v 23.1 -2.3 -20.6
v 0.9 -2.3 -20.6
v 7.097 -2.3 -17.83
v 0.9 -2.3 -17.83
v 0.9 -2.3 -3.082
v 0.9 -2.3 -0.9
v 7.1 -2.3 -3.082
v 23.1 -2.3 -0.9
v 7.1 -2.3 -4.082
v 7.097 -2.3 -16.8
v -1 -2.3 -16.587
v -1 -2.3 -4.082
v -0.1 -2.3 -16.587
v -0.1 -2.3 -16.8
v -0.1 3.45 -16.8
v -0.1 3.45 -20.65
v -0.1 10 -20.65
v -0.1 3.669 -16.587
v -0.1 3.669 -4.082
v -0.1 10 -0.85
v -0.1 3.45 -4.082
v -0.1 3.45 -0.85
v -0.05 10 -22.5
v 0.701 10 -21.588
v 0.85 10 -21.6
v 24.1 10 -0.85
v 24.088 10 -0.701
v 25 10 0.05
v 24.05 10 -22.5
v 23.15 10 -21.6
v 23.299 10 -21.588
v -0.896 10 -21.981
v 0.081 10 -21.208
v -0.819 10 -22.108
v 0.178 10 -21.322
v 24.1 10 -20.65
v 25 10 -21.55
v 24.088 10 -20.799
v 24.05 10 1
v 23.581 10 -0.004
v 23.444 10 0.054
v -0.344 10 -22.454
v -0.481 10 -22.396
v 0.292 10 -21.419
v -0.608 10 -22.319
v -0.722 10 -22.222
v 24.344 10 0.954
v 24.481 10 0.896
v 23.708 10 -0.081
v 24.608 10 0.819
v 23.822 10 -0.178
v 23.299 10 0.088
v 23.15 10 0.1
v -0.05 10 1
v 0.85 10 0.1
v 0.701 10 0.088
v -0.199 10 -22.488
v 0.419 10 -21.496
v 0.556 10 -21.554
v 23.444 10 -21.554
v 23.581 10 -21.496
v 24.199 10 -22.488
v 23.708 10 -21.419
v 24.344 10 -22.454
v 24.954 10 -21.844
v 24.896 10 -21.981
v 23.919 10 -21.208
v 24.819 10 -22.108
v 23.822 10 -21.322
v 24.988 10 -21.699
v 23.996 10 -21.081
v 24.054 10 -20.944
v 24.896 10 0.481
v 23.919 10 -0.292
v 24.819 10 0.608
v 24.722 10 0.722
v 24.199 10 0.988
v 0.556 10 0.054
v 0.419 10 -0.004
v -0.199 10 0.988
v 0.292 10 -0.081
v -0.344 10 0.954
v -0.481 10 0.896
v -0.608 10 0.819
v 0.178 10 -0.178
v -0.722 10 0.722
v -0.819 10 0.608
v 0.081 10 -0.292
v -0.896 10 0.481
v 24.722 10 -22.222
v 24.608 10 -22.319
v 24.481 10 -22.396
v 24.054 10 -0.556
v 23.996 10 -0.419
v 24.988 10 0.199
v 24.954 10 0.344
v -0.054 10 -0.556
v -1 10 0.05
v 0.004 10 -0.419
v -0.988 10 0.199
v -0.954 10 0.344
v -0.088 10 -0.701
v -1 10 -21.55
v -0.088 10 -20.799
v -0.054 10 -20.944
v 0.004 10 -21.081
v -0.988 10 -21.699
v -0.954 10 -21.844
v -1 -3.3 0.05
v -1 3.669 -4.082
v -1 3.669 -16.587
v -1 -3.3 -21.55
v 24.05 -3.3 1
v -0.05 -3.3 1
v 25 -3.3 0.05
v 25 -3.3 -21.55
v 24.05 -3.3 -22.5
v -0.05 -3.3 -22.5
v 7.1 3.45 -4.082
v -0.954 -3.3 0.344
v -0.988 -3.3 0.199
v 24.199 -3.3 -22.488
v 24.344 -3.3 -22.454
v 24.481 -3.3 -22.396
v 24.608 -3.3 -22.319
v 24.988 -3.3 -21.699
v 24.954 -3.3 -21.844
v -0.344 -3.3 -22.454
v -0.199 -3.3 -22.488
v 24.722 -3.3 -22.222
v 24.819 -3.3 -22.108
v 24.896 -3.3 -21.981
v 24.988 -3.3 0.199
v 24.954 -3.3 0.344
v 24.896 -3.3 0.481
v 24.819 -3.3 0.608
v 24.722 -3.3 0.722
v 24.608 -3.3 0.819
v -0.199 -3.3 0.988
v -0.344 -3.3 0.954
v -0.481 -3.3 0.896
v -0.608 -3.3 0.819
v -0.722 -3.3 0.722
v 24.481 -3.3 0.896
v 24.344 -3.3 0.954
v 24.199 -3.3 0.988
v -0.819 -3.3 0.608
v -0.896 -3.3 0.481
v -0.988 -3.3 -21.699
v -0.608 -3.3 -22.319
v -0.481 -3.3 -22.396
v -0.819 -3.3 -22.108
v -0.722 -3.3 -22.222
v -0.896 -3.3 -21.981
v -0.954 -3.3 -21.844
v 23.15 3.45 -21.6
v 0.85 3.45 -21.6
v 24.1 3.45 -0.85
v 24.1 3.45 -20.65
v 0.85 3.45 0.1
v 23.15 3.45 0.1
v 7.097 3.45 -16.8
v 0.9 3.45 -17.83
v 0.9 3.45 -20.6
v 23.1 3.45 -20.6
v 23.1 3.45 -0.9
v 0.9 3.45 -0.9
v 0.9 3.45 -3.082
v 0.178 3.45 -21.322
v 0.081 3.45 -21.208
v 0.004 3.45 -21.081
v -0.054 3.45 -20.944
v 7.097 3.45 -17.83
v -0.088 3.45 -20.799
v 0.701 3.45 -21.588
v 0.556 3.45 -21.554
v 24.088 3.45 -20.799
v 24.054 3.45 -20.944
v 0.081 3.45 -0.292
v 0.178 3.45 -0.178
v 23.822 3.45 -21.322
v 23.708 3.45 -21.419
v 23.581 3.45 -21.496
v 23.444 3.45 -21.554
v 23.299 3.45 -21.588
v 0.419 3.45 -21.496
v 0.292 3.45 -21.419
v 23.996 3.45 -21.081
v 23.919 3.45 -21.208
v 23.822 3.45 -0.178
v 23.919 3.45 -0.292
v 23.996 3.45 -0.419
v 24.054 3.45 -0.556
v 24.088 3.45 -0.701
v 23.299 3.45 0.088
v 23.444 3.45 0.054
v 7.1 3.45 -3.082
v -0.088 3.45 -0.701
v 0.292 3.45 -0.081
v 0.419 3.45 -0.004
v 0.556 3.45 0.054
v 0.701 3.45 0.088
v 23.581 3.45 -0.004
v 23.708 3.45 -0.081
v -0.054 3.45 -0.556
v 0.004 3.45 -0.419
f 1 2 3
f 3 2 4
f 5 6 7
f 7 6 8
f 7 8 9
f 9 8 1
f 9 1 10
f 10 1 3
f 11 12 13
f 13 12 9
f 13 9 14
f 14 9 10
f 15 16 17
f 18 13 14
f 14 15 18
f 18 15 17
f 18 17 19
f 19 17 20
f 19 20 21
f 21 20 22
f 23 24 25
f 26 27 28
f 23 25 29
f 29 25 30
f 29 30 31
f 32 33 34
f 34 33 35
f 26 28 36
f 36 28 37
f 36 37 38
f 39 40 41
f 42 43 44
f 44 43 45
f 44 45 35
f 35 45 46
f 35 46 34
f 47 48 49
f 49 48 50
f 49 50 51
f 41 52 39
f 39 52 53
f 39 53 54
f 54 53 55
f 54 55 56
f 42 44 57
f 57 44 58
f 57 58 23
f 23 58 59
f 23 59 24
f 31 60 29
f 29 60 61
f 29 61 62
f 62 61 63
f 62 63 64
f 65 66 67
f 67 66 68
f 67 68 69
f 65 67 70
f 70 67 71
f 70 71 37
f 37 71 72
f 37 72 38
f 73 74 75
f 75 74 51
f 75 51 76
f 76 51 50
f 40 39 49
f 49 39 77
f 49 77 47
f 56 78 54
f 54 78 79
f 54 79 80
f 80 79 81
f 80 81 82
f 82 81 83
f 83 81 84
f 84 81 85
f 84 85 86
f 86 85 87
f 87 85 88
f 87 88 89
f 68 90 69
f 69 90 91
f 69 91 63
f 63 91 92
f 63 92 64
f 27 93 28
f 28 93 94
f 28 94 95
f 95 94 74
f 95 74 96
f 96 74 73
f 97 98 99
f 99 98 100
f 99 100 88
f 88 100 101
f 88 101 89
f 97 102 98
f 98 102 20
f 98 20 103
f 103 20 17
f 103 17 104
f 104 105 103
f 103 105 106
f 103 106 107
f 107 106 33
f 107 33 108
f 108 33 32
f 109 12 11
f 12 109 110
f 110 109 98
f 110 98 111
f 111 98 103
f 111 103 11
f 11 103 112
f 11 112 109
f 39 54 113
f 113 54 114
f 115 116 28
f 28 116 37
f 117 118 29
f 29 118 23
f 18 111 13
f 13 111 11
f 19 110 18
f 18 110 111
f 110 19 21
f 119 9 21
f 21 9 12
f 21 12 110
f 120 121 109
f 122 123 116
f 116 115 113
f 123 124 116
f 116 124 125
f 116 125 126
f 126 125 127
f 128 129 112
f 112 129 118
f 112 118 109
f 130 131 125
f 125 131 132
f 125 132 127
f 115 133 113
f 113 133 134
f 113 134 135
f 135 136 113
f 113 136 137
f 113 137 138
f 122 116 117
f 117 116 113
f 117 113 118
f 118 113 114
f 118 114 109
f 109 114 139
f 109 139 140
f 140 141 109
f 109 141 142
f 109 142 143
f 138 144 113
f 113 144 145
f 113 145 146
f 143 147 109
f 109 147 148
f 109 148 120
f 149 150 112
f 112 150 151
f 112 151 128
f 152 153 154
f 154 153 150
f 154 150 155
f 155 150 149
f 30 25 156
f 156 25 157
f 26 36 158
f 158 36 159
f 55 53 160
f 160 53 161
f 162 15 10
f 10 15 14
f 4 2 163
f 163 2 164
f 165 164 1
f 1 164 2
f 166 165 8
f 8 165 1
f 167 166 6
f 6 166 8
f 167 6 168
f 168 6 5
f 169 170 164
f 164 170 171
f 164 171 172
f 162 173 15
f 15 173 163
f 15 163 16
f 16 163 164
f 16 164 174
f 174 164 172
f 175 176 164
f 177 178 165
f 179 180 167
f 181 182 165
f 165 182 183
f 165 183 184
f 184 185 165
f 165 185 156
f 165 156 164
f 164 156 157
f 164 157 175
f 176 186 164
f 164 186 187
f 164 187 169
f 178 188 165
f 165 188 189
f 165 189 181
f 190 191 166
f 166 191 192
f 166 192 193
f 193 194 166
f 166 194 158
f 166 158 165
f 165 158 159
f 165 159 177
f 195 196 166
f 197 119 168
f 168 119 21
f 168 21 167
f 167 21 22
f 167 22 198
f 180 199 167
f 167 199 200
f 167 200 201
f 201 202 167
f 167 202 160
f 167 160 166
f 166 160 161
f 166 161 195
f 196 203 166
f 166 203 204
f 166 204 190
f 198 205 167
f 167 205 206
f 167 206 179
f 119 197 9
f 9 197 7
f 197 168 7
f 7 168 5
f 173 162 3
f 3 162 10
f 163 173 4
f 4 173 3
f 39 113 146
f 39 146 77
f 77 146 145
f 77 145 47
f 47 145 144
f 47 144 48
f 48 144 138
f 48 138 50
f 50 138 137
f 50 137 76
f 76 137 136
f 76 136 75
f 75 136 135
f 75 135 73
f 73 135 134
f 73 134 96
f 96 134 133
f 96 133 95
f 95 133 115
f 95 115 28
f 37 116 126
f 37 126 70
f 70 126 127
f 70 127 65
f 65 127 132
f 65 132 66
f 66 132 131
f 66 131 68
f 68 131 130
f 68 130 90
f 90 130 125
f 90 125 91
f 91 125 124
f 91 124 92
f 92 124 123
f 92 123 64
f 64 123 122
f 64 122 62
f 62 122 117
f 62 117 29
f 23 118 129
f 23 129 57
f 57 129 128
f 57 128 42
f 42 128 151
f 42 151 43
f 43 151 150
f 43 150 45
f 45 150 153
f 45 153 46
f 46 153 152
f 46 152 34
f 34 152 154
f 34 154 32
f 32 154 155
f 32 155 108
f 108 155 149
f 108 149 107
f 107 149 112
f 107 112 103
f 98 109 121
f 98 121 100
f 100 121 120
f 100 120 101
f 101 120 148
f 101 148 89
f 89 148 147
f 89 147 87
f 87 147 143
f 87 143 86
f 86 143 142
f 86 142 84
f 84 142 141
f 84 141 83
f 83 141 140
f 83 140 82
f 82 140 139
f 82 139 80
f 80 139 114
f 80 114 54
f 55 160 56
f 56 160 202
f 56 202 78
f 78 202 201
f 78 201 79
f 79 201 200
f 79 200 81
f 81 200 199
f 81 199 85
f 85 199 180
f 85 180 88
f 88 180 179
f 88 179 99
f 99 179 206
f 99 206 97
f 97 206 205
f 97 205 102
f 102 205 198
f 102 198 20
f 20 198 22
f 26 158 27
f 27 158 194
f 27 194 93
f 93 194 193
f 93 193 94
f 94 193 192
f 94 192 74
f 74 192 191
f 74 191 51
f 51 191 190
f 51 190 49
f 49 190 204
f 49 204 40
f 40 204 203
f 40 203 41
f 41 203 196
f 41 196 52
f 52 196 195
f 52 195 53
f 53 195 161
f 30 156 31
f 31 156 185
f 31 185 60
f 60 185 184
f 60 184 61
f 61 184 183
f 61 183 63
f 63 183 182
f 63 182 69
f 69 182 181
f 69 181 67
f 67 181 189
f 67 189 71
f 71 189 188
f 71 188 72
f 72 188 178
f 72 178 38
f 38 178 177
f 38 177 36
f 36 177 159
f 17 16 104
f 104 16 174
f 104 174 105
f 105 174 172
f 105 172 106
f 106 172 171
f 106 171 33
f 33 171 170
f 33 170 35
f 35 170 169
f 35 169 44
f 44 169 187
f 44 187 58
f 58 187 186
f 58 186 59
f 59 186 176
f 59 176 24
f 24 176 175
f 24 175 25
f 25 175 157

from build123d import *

# Parameters (mm, degrees)
SKETCH_1_W          = 26
SKETCH_1_H          = 23.5
SKETCH_1_W_2        = 24
SKETCH_1_H_2        = 21.5
EXTRUDE_1_DEPTH     = 10
SKETCH_2_W          = 12.504676962
SKETCH_2_H          = 3.66933463
CUT_EXTRUDE_1_DEPTH = 1
EXTRUDE_2_DEPTH     = 2.3
SKETCH_5_W          = 26
SKETCH_5_H          = 23.5
EXTRUDE_3_DEPTH     = 1
CUT_EXTRUDE_2_REACH = 38.168
SKETCH_6_W          = 24.2
SKETCH_6_H          = 21.7
SKETCH_6_W_2        = 24
SKETCH_6_H_2        = 21.5
SKETCH_7_W          = 22.2
SKETCH_7_H          = 1
SKETCH_7_W_2        = 1
SKETCH_7_H_2        = 19.7
SKETCH_7_W_3        = 6.19724131
SKETCH_7_H_3        = 1.03
SKETCH_7_W_4        = 6.2
EXTRUDE_4_DEPTH     = 5.75
FILLET_1_R          = 0.95


with BuildPart() as part:
    # 草图1 → 凸台-拉伸1 (new body)
    with BuildSketch(Plane(origin=(0, 0, 0), x_dir=(1, 0, 0), z_dir=(0, 1, 0))):
        with Locations((12, 10.75)):
            Rectangle(SKETCH_1_W, SKETCH_1_H)
        with Locations((12, 10.75)):
            Rectangle(SKETCH_1_W_2, SKETCH_1_H_2, mode=Mode.SUBTRACT)
    extrude(amount=EXTRUDE_1_DEPTH)

    # 草图2 → 切除-拉伸1 (cut)
    with BuildSketch(Plane.ZY.offset(1)):
        with Locations((-10.334237592, 1.834667315)):
            Rectangle(SKETCH_2_W, SKETCH_2_H)
    extrude(amount=-CUT_EXTRUDE_1_DEPTH, mode=Mode.SUBTRACT)

    # 草图3 → 凸台-拉伸2 (add)
    with BuildSketch(Plane.XZ):
        Polygon((-1, -4.081899111), (-1, 1), (25, 1), (25, -22.5), (-1, -22.5), (-1, -16.586576073), (0, -16.586576073), (0, -21.5), (24, -21.5), (24, 0), (0, 0), (0, -4.081899111), align=None)
    extrude(amount=EXTRUDE_2_DEPTH)

    # 草图5 → 凸台-拉伸3 (add)
    with BuildSketch(Plane.XZ.offset(2.3)):
        with Locations((12, -10.75)):
            Rectangle(SKETCH_5_W, SKETCH_5_H)
    extrude(amount=EXTRUDE_3_DEPTH)

    # 切除-拉伸2: up to this face of the body (flat: up to its plane)
    cut_extrude_2_end = Plane(part.part.faces().sort_by_distance((11.704243938, -2.3, -10.74016286))[0])
    # 草图6 → 切除-拉伸2 (cut, up to the picked face)
    with BuildSketch(Plane(origin=(0, 10, 0), x_dir=(1, 0, 0), z_dir=(0, 1, 0)), mode=Mode.PRIVATE) as cut_extrude_2_sk1:
        with Locations((12, 10.75)):
            Rectangle(SKETCH_6_W, SKETCH_6_H)
        with Locations((12, 10.75)):
            Rectangle(SKETCH_6_W_2, SKETCH_6_H_2, mode=Mode.SUBTRACT)
    cut_extrude_2_tool1 = split(extrude(cut_extrude_2_sk1.sketch, amount=-CUT_EXTRUDE_2_REACH, mode=Mode.PRIVATE), bisect_by=cut_extrude_2_end, keep=Keep.BOTH, mode=Mode.PRIVATE)
    add(cut_extrude_2_tool1.solids().sort_by(Axis((12, 10, -21.567496), (0, -1, 0)))[0], mode=Mode.SUBTRACT)

    # 草图7 → 凸台-拉伸4 (add)
    with BuildSketch(Plane(origin=(0, -2.3, 0), x_dir=(1, 0, 0), z_dir=(0, 1, 0))):
        with Locations((12, 21.1)):
            Rectangle(SKETCH_7_W, SKETCH_7_H)
        with Locations((0.4, 21.1)):
            Rectangle(SKETCH_7_W_2, SKETCH_7_H)
        Polygon((0.9, 20.6), (-0.1, 20.6), (-0.1, 16.8), (0.9, 16.8), (0.9, 17.83), align=None)
        with Locations((23.6, 21.1)):
            Rectangle(SKETCH_7_W_2, SKETCH_7_H)
        with Locations((23.6, 10.75)):
            Rectangle(SKETCH_7_W_2, SKETCH_7_H_2)
        with Locations((12, 0.4)):
            Rectangle(SKETCH_7_W, SKETCH_7_H)
        with Locations((23.6, 0.4)):
            Rectangle(SKETCH_7_W_2, SKETCH_7_H)
        with Locations((0.4, 0.4)):
            Rectangle(SKETCH_7_W_2, SKETCH_7_H)
        Polygon((-0.1, 0.9), (0.9, 0.9), (0.9, 3.081899111), (0.9, 4.081899111), (-0.1, 4.081899111), align=None)
        with Locations((3.998620655, 17.315)):
            Rectangle(SKETCH_7_W_3, SKETCH_7_H_3)
        with Locations((4, 3.581899111)):
            Rectangle(SKETCH_7_W_4, SKETCH_7_H)
    extrude(amount=EXTRUDE_4_DEPTH)

    # 圆角1
    fillet_1_edges = [part.edges().sort_by_distance(p)[0] for p in [
        (-0.1, 6.725, 0.1),
        (24.1, 6.725, 0.1),
        (24.1, 6.725, -21.6),
        (-0.1, 6.725, -21.6),
        (-1, 3.35, -22.5),
        (25, 3.35, -22.5),
        (25, 3.35, 1),
        (-1, 3.35, 1),
    ]]
    fillet(fillet_1_edges, radius=FILLET_1_R)


solid = part.part
